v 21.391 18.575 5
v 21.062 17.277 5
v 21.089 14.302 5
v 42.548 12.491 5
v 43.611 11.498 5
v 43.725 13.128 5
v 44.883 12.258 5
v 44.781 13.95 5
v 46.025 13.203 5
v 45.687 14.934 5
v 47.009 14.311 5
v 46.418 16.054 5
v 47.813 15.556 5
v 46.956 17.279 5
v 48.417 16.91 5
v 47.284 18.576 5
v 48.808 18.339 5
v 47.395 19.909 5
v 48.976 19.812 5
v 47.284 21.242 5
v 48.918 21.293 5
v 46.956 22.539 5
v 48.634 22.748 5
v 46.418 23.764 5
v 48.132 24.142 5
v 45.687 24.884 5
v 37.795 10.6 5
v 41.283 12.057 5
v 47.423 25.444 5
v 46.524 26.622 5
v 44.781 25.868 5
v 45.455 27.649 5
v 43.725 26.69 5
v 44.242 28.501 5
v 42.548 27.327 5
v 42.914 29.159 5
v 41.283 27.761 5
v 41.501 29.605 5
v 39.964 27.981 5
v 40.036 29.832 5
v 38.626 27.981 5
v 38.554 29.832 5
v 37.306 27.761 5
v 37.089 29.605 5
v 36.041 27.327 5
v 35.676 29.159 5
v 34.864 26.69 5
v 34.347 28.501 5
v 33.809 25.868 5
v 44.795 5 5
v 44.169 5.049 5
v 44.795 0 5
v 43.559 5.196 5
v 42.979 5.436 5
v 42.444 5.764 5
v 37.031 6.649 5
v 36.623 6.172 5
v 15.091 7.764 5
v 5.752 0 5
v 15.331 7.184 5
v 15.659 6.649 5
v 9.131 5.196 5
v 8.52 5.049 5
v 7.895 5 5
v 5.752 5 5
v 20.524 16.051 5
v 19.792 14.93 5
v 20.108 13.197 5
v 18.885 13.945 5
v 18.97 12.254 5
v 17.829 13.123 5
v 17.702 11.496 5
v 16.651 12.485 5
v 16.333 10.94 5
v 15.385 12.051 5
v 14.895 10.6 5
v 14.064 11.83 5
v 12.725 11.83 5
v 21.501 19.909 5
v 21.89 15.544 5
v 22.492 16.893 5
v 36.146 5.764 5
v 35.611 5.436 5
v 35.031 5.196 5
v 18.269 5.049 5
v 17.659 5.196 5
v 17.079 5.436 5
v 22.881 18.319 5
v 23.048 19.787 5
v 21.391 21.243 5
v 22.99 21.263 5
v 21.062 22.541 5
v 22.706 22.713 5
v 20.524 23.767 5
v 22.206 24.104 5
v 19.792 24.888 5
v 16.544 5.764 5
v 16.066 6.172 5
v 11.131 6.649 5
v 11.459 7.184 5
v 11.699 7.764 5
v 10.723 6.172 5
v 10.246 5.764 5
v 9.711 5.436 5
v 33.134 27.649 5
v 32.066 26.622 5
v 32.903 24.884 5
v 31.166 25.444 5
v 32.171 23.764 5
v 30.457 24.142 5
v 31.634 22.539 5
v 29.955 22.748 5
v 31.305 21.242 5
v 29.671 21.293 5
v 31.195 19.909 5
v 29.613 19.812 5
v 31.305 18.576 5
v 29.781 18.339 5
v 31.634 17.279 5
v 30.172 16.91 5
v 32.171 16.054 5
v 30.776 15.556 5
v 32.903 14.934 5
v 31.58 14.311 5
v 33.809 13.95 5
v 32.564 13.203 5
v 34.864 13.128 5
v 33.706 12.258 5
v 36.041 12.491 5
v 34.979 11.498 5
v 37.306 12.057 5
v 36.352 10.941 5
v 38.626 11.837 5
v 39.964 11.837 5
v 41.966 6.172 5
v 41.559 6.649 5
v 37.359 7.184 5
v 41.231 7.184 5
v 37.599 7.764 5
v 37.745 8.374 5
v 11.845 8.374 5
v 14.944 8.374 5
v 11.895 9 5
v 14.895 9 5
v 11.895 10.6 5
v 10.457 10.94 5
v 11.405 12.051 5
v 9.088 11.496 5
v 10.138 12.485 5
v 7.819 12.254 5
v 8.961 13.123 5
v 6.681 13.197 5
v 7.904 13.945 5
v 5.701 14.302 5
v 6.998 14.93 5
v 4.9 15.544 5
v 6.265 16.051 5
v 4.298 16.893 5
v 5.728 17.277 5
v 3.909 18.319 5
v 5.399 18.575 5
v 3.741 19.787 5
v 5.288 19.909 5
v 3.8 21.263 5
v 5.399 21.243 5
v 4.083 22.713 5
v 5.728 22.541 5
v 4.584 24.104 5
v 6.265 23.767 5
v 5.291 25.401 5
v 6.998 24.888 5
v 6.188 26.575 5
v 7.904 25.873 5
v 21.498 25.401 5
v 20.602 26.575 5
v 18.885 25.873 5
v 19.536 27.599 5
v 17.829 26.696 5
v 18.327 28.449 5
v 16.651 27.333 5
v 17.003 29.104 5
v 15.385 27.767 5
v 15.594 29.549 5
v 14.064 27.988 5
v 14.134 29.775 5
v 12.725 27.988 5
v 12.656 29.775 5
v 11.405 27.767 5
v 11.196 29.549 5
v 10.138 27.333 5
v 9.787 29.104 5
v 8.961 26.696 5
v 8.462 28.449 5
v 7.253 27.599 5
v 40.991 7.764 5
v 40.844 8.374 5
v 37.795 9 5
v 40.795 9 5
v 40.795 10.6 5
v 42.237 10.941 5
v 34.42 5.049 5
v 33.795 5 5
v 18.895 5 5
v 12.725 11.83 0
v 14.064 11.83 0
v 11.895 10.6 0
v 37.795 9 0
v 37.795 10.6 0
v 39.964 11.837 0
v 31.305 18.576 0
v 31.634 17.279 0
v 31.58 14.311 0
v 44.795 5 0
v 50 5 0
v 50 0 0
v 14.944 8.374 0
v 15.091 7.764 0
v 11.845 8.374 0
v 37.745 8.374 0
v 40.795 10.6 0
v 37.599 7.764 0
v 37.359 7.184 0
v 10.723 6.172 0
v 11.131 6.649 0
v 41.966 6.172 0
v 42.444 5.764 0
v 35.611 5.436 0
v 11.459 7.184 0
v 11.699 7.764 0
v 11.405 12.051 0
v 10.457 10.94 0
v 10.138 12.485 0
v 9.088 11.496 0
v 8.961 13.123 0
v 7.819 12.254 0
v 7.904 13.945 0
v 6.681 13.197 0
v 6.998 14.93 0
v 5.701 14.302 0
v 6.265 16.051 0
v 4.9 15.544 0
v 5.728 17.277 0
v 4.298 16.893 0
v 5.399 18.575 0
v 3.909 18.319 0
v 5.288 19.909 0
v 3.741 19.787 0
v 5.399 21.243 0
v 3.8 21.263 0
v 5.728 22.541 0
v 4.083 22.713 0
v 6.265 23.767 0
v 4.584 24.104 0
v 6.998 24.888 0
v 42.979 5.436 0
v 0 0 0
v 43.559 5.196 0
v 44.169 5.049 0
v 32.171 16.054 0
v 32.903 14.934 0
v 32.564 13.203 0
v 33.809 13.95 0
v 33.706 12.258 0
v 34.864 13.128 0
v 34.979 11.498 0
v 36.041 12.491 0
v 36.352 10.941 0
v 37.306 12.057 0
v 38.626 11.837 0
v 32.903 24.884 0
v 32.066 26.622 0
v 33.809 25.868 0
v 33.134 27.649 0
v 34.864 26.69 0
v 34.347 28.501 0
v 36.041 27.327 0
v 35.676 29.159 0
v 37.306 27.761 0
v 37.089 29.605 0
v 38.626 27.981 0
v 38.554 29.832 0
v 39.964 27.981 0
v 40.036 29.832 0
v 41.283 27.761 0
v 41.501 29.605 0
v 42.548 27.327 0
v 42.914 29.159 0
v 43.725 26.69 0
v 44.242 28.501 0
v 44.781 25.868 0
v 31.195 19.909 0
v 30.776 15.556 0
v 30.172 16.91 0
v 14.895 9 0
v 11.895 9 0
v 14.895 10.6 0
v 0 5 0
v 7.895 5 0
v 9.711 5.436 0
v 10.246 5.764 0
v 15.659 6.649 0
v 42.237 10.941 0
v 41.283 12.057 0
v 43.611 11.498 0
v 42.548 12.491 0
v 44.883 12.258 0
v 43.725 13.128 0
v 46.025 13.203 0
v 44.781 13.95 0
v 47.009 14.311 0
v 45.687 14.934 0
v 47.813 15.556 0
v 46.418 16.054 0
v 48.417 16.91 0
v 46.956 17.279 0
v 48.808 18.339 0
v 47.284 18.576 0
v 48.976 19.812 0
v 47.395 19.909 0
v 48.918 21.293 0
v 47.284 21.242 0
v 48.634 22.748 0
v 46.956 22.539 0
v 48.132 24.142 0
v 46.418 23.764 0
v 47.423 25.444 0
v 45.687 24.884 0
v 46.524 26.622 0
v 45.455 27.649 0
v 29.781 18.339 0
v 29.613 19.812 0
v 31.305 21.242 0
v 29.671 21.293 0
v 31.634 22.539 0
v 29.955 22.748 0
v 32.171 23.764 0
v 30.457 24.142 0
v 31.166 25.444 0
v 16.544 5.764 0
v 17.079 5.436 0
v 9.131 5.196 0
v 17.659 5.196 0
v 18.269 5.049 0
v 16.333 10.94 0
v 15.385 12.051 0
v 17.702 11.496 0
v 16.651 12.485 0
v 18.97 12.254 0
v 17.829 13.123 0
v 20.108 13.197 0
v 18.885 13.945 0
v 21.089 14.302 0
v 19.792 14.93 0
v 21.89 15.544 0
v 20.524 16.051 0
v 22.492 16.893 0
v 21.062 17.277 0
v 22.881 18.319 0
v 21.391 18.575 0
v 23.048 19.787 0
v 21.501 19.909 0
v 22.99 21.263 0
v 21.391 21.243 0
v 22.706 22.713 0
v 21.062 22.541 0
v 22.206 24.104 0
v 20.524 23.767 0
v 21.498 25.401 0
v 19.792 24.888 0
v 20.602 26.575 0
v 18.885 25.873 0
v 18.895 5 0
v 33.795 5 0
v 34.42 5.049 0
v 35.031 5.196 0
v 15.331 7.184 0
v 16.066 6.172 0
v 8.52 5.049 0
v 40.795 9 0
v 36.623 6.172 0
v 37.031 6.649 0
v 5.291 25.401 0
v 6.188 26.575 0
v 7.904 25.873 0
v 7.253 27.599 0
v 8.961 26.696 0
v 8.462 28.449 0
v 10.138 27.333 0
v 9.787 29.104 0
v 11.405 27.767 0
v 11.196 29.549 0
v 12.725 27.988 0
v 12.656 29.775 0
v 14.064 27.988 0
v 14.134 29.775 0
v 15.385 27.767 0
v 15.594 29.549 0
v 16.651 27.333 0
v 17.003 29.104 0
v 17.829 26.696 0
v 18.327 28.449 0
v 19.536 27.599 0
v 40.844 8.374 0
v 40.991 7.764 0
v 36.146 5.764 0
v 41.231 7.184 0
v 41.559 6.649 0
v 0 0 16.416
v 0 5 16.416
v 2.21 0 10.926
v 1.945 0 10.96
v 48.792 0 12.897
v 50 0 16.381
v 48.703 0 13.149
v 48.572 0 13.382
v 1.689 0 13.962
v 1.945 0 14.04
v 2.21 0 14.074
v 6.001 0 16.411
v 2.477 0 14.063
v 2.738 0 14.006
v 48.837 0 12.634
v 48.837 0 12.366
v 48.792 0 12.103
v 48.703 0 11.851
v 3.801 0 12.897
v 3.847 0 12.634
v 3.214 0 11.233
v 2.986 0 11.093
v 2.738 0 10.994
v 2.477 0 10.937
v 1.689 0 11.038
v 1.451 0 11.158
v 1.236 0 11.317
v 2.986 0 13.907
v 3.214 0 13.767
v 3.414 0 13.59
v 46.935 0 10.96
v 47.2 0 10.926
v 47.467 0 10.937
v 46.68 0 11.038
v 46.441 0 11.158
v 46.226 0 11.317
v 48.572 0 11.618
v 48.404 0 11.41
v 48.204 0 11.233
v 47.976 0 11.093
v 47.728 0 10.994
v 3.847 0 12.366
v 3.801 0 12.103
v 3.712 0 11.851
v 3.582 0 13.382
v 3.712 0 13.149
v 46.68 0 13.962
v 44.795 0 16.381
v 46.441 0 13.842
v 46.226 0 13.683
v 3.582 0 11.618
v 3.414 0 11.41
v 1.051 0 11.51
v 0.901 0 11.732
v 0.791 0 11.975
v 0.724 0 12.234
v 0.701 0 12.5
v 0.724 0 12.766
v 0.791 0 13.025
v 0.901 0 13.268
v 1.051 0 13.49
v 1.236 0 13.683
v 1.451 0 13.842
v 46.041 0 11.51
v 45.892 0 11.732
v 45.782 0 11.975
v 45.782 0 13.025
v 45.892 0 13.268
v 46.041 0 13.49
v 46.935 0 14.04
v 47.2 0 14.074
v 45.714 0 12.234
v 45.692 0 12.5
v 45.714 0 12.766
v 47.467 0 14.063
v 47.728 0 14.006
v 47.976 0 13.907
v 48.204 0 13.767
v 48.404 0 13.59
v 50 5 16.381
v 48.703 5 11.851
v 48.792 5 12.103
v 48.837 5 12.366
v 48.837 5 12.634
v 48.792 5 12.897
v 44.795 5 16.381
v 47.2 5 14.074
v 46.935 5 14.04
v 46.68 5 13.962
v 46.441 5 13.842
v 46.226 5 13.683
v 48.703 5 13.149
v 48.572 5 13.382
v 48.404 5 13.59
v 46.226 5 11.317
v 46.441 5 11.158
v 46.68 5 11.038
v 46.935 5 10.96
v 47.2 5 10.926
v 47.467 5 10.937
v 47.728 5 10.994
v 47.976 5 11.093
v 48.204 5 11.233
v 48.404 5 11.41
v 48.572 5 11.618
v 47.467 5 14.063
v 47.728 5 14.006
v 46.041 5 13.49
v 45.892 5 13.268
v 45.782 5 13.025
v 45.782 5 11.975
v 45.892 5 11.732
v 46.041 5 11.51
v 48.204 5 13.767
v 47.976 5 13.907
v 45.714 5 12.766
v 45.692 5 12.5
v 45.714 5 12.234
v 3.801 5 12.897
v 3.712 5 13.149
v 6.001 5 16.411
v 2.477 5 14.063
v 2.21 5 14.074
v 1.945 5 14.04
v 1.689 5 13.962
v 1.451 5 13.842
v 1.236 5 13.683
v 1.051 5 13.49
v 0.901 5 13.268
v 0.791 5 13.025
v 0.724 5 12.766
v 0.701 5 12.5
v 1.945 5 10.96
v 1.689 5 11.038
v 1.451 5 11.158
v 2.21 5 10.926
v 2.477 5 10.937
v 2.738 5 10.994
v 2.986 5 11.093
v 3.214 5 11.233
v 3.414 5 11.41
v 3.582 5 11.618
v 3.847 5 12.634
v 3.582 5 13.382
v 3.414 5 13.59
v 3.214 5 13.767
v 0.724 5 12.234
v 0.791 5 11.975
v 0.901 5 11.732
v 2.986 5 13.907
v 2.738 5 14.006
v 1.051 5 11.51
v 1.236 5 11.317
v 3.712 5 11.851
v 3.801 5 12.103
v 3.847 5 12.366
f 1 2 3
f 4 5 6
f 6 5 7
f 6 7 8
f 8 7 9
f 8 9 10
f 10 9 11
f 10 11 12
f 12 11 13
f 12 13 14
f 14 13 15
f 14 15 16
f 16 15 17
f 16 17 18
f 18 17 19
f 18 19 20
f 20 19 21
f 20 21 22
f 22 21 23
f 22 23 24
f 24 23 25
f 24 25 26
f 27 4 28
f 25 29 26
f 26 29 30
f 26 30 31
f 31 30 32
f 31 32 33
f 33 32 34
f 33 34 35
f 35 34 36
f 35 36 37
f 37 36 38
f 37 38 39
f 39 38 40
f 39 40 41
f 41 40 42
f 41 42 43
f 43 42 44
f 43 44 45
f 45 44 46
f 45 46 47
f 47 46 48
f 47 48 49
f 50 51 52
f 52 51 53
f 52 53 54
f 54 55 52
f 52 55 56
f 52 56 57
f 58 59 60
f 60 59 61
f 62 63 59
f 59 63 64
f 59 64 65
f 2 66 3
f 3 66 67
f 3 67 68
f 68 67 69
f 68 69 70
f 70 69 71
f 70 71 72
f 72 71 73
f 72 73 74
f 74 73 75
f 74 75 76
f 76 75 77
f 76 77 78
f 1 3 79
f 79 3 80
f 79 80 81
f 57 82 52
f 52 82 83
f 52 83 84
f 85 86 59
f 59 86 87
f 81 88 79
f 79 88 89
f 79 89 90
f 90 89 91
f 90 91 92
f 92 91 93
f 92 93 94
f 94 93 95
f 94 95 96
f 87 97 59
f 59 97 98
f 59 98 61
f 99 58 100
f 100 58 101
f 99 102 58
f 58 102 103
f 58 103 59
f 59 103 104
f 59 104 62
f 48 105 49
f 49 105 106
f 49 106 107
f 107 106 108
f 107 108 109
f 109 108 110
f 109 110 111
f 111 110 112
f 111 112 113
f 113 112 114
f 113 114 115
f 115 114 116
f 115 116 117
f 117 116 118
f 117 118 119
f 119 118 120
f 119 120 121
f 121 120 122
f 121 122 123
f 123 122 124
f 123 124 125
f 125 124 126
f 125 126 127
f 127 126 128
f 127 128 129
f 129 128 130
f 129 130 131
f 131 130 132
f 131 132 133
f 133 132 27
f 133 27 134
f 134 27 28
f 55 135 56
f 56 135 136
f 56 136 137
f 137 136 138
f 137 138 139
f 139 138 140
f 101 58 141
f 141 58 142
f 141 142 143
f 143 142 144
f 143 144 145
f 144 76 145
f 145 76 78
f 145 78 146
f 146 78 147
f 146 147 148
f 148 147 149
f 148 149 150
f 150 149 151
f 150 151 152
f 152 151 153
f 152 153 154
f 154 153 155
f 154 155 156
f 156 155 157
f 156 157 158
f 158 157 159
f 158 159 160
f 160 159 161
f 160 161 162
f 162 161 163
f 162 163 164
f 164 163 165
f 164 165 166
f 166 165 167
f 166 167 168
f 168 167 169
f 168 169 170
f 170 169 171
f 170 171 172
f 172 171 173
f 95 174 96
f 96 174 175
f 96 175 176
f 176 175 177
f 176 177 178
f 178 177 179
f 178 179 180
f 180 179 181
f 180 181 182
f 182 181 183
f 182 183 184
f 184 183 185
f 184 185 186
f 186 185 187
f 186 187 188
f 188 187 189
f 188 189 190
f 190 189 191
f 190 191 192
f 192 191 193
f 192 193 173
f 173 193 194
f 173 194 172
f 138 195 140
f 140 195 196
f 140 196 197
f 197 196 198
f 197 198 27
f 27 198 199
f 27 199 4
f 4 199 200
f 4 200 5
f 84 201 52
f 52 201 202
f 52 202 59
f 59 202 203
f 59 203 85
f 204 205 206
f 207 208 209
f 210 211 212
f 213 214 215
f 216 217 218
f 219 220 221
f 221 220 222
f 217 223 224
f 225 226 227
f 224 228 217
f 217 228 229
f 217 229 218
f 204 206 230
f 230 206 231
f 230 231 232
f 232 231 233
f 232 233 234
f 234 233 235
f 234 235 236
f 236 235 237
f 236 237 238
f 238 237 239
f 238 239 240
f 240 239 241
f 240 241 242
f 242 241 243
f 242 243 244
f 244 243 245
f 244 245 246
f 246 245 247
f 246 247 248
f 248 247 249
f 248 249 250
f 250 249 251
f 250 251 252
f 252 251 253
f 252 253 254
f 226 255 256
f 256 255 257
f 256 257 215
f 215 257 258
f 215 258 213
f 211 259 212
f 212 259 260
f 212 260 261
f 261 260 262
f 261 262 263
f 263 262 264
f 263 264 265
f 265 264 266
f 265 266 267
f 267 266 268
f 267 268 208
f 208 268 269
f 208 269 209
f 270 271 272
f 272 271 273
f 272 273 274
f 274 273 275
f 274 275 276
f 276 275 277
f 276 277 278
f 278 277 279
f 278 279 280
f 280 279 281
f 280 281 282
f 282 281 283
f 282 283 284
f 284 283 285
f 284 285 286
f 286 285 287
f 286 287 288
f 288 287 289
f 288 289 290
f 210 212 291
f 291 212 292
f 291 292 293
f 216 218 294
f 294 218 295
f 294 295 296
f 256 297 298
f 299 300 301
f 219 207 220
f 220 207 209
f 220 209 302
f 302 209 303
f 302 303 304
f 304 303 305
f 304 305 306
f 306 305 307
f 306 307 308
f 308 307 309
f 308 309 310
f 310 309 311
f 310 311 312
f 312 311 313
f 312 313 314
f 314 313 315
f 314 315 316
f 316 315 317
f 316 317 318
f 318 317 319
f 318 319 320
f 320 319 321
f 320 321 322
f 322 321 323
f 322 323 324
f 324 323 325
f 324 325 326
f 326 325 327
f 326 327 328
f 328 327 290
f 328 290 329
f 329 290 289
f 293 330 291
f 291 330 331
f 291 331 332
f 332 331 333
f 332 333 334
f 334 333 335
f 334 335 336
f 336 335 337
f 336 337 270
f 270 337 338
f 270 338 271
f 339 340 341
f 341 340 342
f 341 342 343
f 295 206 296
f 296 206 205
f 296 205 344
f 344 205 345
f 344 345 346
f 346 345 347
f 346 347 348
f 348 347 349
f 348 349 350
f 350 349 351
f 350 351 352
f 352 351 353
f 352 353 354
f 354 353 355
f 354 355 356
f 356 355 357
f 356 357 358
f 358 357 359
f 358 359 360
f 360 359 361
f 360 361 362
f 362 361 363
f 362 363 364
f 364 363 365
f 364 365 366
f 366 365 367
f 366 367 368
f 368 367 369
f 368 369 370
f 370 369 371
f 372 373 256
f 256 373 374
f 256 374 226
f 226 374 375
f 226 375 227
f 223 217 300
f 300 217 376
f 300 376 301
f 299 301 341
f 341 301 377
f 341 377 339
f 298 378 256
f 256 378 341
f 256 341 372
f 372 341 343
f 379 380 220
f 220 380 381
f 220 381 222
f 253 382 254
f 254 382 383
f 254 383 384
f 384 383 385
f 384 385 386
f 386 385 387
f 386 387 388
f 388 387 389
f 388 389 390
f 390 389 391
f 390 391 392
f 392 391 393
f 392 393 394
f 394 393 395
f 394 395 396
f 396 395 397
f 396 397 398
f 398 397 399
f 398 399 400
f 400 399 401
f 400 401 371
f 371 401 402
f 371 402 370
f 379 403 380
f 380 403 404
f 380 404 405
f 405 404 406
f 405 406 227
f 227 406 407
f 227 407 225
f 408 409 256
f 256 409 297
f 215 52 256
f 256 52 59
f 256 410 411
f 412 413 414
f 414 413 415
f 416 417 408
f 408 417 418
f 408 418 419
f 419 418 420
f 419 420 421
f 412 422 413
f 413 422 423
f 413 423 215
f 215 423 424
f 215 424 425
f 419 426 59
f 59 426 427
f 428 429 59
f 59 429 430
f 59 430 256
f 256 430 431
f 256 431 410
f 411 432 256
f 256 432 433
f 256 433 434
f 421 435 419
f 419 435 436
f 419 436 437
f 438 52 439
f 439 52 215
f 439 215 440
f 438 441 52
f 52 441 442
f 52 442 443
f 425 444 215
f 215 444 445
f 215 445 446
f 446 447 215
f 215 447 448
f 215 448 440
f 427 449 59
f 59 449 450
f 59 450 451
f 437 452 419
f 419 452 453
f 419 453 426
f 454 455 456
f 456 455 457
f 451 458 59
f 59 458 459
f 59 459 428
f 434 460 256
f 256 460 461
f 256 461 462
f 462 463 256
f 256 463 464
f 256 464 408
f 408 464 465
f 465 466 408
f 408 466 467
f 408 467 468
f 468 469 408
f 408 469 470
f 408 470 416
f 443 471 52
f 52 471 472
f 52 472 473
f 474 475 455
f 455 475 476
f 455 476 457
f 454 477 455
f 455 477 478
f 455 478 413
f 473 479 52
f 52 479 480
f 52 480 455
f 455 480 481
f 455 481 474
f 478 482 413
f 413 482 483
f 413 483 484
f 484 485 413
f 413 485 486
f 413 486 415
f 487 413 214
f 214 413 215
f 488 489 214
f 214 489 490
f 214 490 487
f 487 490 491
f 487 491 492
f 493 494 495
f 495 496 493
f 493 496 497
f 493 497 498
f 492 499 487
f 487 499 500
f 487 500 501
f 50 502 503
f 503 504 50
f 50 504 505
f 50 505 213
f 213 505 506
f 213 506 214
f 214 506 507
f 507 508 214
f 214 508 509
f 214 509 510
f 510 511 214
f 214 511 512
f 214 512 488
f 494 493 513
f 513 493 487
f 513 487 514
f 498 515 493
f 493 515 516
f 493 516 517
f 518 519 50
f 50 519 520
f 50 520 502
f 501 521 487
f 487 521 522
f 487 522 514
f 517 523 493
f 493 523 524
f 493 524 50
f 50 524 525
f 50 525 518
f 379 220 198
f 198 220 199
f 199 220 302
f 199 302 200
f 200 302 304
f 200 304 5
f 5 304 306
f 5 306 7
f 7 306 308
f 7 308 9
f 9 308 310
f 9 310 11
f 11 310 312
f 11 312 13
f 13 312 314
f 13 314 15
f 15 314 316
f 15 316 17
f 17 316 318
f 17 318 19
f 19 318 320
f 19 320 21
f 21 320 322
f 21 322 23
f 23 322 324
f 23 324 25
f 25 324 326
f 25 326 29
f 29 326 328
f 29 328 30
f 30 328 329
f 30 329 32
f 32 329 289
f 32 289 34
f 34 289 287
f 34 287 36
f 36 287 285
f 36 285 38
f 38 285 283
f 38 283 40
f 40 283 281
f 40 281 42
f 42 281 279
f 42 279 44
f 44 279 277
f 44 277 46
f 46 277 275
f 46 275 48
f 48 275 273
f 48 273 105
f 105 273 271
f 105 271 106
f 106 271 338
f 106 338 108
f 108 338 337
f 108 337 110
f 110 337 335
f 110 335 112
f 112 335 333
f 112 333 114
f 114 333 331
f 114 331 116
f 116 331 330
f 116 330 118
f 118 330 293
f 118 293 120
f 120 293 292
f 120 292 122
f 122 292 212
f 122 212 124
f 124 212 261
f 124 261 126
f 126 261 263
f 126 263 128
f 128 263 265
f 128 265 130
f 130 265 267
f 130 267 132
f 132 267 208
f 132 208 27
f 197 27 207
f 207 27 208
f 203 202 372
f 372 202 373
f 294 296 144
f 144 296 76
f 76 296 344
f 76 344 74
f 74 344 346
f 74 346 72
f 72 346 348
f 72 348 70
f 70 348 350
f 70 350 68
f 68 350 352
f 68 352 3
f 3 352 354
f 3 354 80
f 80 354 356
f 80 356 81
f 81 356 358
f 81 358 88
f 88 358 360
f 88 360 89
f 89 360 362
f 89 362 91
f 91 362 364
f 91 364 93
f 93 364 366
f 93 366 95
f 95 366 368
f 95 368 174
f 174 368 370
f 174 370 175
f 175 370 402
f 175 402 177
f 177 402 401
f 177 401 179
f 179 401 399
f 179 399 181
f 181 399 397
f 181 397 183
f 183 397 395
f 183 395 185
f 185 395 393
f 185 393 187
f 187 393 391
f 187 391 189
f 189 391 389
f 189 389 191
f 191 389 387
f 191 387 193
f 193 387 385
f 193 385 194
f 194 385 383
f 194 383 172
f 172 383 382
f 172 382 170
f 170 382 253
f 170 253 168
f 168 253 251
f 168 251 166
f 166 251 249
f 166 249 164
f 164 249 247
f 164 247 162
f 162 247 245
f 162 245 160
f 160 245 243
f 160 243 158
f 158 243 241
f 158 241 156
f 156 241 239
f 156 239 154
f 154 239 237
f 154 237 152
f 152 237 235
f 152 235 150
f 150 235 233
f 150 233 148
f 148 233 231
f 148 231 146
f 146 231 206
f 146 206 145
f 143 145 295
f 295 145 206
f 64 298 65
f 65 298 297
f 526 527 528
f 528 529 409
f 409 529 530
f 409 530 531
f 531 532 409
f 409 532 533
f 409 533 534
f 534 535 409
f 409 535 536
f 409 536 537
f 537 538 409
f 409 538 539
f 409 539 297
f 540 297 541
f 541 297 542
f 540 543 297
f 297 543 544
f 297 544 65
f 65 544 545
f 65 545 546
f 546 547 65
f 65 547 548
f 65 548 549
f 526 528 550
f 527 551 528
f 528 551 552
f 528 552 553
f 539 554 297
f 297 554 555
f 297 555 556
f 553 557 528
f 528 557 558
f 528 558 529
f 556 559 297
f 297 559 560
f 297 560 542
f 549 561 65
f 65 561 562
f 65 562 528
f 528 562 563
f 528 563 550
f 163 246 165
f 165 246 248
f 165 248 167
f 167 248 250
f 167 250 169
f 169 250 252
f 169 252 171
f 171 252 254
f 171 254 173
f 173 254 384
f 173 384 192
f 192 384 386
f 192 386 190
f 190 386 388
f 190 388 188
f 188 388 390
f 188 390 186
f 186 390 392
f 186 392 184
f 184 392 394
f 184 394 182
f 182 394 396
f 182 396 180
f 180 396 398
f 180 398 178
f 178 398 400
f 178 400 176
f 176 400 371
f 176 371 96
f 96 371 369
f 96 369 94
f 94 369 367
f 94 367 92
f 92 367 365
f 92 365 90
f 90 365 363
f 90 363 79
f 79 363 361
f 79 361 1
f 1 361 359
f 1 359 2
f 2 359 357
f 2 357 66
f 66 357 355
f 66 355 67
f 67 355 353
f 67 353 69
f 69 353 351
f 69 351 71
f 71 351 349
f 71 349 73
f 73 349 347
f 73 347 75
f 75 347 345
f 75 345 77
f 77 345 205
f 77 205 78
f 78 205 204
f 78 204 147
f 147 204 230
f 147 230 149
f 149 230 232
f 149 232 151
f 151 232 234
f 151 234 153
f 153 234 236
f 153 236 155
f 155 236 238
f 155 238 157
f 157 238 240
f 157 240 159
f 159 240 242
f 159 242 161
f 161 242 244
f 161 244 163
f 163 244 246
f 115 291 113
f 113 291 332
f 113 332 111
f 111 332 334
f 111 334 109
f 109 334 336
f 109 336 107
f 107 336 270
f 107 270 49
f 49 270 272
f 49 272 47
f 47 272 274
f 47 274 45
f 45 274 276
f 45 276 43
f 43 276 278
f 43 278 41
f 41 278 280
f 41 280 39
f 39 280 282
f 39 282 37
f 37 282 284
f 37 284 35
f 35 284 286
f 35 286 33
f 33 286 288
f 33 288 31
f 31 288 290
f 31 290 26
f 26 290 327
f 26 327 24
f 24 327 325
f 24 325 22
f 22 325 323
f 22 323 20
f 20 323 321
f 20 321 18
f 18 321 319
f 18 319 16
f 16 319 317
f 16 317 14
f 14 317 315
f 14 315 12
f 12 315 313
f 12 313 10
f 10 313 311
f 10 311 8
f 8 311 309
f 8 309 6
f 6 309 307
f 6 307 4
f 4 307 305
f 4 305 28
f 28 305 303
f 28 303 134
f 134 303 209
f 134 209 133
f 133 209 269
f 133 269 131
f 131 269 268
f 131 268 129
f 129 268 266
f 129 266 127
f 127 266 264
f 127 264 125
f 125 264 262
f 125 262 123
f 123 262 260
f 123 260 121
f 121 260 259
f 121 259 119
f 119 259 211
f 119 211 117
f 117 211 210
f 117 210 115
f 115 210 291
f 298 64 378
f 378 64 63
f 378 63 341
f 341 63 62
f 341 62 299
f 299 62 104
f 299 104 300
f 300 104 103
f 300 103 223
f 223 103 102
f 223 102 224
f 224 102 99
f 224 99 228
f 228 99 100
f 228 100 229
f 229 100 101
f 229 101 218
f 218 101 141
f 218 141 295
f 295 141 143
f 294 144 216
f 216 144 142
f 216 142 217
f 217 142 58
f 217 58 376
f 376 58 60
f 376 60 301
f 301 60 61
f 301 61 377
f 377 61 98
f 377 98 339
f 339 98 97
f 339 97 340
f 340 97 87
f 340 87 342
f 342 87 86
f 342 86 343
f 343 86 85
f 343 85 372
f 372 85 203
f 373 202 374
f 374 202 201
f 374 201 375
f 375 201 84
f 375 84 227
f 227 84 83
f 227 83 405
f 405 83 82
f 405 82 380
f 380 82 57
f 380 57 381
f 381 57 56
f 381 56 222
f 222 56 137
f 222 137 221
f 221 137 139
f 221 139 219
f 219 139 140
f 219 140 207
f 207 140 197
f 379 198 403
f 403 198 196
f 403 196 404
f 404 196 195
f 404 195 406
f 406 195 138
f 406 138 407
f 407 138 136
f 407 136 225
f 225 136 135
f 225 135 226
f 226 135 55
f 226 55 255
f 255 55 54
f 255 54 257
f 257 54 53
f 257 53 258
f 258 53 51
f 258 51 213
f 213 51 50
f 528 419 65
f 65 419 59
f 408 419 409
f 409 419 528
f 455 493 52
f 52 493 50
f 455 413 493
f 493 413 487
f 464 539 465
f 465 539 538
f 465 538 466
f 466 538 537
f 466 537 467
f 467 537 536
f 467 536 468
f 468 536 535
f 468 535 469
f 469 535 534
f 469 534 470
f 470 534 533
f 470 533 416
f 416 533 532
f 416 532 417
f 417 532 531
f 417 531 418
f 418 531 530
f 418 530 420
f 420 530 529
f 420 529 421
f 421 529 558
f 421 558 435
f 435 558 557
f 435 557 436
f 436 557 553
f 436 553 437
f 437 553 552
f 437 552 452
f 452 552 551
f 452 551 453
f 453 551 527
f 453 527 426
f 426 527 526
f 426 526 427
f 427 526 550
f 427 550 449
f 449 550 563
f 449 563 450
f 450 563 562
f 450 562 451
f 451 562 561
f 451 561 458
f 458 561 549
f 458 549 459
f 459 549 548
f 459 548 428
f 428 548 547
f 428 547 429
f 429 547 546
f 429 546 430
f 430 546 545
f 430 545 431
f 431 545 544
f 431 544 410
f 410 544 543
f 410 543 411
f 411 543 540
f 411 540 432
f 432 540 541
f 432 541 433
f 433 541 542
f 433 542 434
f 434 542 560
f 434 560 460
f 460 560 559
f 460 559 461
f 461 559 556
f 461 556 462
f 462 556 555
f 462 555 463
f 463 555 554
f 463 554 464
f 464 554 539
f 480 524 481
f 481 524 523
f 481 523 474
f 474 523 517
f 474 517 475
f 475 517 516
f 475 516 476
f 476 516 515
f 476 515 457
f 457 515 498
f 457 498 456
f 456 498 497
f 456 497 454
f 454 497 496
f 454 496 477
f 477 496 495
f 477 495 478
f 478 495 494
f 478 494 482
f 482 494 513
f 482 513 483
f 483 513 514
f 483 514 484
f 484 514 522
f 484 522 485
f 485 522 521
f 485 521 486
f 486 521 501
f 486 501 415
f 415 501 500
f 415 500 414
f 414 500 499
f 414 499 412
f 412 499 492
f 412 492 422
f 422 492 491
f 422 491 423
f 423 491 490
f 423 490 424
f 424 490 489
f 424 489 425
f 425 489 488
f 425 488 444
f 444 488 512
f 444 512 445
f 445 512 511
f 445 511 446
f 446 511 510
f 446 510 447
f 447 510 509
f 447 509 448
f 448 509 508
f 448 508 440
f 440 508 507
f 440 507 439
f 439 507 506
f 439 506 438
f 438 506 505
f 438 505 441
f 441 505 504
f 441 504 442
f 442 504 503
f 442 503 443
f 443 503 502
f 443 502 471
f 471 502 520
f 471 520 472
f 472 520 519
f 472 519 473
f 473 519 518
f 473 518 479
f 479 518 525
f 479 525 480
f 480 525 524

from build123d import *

# Parameters (mm, degrees)
SKETCH1_R           = 8.106403635
SKETCH1_R_2         = 8.1
BOSS_EXTRUDE2_DEPTH = 5
FILLET1_R           = 4
SKETCH3_W           = 5.205268412
SKETCH3_H           = 16.38085221
BOSS_EXTRUDE3_DEPTH = 5
SKETCH2_R           = 1.575419973
CUT_EXTRUDE1_DEPTH  = 5


with BuildPart() as part:
    # Sketch1 → Boss-Extrude2 (new body)
    with BuildSketch(Plane.XY):
        with BuildLine():
            Line((0, 0), (50, 0))
            Line((50, 0), (50, 5))
            Line((50, 5), (40.794731588, 5))
            Line((40.794731588, 5), (40.794731588, 10.6))
            ThreePointArc((40.794731588, 10.6), (39.294731588, 29.859964052), (37.794731588, 10.6))
            Line((37.794731588, 10.6), (37.794731588, 5))
            Line((37.794731588, 5), (14.894731588, 5))
            Line((14.894731588, 5), (14.894731588, 10.6))
            ThreePointArc((14.894731588, 10.6), (13.394731588, 29.802927968), (11.894731588, 10.6))
            Line((11.894731588, 10.6), (11.894731588, 5))
            Line((11.894731588, 5), (0, 5))
            Line((0, 5), (0, 0))
        make_face()
        with Locations((13.394731588, 19.909096331)):
            Circle(SKETCH1_R, mode=Mode.SUBTRACT)
        with Locations((39.294731588, 19.909096331)):
            Circle(SKETCH1_R_2, mode=Mode.SUBTRACT)
    extrude(amount=BOSS_EXTRUDE2_DEPTH)

    # Fillet1
    fillet1_edges = [part.edges().sort_by_distance(p)[0] for p in [
        (11.894731588, 5, 2.5),
        (14.894731588, 5, 2.5),
        (37.794731588, 5, 2.5),
        (40.794731588, 5, 2.5),
    ]]
    fillet(fillet1_edges, radius=FILLET1_R)

    # Sketch3 → Boss-Extrude3 (add)
    with BuildSketch(Plane(origin=(0, 5, 0), x_dir=(1, 0, 0), z_dir=(0, 1, 0))):
        Polygon((5.642760672, 0), (0, 0), (0, -16.416233716), (6.001314969, -16.410881412), align=None)
        with Locations((47.397365794, -8.190426105)):
            Rectangle(SKETCH3_W, SKETCH3_H)
    extrude(amount=-BOSS_EXTRUDE3_DEPTH)

    # Sketch2 → Cut-Extrude1 (cut)
    with BuildSketch(Plane(origin=(0, 5, 0), x_dir=(1, 0, 0), z_dir=(0, 1, 0))):
        with Locations(Location((2.276803949, -12.5, 0), (0, 0, 180))):
            Circle(SKETCH2_R)
        with Locations(Location((47.26704488, -12.5, 0), (0, 0, 180))):
            Circle(SKETCH2_R)
    extrude(amount=-CUT_EXTRUDE1_DEPTH, mode=Mode.SUBTRACT)


solid = part.part
